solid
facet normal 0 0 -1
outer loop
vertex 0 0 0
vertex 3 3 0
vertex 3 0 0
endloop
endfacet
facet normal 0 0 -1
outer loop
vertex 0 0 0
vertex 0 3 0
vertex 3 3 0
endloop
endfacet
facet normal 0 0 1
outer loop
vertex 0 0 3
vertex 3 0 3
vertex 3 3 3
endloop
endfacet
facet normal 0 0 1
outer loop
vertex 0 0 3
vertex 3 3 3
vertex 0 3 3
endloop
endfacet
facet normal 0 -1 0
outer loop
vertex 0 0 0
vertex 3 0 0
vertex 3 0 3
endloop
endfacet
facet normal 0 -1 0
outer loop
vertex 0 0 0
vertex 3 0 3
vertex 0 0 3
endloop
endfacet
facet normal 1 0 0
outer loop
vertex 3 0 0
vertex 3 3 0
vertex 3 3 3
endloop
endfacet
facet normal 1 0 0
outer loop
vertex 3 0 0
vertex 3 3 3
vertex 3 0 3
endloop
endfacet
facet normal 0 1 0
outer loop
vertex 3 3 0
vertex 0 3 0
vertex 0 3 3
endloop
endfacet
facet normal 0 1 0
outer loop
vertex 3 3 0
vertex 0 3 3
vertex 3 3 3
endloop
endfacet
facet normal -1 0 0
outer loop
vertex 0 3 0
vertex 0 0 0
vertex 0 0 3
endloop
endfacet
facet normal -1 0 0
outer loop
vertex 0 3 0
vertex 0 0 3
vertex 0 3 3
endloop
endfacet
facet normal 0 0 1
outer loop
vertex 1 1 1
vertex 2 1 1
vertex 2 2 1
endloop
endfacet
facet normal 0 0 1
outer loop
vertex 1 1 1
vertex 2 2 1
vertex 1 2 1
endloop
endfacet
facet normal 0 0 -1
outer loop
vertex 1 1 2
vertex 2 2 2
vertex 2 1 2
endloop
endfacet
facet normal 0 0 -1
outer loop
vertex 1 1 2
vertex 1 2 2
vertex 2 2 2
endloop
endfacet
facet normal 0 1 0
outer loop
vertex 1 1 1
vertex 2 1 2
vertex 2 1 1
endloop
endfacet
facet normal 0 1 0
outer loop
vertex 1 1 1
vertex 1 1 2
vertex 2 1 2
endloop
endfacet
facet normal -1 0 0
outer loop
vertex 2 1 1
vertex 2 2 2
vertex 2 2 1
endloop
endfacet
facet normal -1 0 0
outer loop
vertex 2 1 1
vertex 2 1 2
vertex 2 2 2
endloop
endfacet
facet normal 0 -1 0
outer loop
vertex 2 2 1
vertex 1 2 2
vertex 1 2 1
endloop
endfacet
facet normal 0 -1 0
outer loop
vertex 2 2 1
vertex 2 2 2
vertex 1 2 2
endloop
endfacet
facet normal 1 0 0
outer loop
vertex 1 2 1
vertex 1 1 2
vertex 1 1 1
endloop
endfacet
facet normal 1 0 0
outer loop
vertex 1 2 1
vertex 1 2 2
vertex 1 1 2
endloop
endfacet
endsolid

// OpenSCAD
// A legal CSG difference: 3^3 - 1^3 = 26 modelUnits^3.
difference() { cube(3); translate([1,1,1]) cube(1); }
